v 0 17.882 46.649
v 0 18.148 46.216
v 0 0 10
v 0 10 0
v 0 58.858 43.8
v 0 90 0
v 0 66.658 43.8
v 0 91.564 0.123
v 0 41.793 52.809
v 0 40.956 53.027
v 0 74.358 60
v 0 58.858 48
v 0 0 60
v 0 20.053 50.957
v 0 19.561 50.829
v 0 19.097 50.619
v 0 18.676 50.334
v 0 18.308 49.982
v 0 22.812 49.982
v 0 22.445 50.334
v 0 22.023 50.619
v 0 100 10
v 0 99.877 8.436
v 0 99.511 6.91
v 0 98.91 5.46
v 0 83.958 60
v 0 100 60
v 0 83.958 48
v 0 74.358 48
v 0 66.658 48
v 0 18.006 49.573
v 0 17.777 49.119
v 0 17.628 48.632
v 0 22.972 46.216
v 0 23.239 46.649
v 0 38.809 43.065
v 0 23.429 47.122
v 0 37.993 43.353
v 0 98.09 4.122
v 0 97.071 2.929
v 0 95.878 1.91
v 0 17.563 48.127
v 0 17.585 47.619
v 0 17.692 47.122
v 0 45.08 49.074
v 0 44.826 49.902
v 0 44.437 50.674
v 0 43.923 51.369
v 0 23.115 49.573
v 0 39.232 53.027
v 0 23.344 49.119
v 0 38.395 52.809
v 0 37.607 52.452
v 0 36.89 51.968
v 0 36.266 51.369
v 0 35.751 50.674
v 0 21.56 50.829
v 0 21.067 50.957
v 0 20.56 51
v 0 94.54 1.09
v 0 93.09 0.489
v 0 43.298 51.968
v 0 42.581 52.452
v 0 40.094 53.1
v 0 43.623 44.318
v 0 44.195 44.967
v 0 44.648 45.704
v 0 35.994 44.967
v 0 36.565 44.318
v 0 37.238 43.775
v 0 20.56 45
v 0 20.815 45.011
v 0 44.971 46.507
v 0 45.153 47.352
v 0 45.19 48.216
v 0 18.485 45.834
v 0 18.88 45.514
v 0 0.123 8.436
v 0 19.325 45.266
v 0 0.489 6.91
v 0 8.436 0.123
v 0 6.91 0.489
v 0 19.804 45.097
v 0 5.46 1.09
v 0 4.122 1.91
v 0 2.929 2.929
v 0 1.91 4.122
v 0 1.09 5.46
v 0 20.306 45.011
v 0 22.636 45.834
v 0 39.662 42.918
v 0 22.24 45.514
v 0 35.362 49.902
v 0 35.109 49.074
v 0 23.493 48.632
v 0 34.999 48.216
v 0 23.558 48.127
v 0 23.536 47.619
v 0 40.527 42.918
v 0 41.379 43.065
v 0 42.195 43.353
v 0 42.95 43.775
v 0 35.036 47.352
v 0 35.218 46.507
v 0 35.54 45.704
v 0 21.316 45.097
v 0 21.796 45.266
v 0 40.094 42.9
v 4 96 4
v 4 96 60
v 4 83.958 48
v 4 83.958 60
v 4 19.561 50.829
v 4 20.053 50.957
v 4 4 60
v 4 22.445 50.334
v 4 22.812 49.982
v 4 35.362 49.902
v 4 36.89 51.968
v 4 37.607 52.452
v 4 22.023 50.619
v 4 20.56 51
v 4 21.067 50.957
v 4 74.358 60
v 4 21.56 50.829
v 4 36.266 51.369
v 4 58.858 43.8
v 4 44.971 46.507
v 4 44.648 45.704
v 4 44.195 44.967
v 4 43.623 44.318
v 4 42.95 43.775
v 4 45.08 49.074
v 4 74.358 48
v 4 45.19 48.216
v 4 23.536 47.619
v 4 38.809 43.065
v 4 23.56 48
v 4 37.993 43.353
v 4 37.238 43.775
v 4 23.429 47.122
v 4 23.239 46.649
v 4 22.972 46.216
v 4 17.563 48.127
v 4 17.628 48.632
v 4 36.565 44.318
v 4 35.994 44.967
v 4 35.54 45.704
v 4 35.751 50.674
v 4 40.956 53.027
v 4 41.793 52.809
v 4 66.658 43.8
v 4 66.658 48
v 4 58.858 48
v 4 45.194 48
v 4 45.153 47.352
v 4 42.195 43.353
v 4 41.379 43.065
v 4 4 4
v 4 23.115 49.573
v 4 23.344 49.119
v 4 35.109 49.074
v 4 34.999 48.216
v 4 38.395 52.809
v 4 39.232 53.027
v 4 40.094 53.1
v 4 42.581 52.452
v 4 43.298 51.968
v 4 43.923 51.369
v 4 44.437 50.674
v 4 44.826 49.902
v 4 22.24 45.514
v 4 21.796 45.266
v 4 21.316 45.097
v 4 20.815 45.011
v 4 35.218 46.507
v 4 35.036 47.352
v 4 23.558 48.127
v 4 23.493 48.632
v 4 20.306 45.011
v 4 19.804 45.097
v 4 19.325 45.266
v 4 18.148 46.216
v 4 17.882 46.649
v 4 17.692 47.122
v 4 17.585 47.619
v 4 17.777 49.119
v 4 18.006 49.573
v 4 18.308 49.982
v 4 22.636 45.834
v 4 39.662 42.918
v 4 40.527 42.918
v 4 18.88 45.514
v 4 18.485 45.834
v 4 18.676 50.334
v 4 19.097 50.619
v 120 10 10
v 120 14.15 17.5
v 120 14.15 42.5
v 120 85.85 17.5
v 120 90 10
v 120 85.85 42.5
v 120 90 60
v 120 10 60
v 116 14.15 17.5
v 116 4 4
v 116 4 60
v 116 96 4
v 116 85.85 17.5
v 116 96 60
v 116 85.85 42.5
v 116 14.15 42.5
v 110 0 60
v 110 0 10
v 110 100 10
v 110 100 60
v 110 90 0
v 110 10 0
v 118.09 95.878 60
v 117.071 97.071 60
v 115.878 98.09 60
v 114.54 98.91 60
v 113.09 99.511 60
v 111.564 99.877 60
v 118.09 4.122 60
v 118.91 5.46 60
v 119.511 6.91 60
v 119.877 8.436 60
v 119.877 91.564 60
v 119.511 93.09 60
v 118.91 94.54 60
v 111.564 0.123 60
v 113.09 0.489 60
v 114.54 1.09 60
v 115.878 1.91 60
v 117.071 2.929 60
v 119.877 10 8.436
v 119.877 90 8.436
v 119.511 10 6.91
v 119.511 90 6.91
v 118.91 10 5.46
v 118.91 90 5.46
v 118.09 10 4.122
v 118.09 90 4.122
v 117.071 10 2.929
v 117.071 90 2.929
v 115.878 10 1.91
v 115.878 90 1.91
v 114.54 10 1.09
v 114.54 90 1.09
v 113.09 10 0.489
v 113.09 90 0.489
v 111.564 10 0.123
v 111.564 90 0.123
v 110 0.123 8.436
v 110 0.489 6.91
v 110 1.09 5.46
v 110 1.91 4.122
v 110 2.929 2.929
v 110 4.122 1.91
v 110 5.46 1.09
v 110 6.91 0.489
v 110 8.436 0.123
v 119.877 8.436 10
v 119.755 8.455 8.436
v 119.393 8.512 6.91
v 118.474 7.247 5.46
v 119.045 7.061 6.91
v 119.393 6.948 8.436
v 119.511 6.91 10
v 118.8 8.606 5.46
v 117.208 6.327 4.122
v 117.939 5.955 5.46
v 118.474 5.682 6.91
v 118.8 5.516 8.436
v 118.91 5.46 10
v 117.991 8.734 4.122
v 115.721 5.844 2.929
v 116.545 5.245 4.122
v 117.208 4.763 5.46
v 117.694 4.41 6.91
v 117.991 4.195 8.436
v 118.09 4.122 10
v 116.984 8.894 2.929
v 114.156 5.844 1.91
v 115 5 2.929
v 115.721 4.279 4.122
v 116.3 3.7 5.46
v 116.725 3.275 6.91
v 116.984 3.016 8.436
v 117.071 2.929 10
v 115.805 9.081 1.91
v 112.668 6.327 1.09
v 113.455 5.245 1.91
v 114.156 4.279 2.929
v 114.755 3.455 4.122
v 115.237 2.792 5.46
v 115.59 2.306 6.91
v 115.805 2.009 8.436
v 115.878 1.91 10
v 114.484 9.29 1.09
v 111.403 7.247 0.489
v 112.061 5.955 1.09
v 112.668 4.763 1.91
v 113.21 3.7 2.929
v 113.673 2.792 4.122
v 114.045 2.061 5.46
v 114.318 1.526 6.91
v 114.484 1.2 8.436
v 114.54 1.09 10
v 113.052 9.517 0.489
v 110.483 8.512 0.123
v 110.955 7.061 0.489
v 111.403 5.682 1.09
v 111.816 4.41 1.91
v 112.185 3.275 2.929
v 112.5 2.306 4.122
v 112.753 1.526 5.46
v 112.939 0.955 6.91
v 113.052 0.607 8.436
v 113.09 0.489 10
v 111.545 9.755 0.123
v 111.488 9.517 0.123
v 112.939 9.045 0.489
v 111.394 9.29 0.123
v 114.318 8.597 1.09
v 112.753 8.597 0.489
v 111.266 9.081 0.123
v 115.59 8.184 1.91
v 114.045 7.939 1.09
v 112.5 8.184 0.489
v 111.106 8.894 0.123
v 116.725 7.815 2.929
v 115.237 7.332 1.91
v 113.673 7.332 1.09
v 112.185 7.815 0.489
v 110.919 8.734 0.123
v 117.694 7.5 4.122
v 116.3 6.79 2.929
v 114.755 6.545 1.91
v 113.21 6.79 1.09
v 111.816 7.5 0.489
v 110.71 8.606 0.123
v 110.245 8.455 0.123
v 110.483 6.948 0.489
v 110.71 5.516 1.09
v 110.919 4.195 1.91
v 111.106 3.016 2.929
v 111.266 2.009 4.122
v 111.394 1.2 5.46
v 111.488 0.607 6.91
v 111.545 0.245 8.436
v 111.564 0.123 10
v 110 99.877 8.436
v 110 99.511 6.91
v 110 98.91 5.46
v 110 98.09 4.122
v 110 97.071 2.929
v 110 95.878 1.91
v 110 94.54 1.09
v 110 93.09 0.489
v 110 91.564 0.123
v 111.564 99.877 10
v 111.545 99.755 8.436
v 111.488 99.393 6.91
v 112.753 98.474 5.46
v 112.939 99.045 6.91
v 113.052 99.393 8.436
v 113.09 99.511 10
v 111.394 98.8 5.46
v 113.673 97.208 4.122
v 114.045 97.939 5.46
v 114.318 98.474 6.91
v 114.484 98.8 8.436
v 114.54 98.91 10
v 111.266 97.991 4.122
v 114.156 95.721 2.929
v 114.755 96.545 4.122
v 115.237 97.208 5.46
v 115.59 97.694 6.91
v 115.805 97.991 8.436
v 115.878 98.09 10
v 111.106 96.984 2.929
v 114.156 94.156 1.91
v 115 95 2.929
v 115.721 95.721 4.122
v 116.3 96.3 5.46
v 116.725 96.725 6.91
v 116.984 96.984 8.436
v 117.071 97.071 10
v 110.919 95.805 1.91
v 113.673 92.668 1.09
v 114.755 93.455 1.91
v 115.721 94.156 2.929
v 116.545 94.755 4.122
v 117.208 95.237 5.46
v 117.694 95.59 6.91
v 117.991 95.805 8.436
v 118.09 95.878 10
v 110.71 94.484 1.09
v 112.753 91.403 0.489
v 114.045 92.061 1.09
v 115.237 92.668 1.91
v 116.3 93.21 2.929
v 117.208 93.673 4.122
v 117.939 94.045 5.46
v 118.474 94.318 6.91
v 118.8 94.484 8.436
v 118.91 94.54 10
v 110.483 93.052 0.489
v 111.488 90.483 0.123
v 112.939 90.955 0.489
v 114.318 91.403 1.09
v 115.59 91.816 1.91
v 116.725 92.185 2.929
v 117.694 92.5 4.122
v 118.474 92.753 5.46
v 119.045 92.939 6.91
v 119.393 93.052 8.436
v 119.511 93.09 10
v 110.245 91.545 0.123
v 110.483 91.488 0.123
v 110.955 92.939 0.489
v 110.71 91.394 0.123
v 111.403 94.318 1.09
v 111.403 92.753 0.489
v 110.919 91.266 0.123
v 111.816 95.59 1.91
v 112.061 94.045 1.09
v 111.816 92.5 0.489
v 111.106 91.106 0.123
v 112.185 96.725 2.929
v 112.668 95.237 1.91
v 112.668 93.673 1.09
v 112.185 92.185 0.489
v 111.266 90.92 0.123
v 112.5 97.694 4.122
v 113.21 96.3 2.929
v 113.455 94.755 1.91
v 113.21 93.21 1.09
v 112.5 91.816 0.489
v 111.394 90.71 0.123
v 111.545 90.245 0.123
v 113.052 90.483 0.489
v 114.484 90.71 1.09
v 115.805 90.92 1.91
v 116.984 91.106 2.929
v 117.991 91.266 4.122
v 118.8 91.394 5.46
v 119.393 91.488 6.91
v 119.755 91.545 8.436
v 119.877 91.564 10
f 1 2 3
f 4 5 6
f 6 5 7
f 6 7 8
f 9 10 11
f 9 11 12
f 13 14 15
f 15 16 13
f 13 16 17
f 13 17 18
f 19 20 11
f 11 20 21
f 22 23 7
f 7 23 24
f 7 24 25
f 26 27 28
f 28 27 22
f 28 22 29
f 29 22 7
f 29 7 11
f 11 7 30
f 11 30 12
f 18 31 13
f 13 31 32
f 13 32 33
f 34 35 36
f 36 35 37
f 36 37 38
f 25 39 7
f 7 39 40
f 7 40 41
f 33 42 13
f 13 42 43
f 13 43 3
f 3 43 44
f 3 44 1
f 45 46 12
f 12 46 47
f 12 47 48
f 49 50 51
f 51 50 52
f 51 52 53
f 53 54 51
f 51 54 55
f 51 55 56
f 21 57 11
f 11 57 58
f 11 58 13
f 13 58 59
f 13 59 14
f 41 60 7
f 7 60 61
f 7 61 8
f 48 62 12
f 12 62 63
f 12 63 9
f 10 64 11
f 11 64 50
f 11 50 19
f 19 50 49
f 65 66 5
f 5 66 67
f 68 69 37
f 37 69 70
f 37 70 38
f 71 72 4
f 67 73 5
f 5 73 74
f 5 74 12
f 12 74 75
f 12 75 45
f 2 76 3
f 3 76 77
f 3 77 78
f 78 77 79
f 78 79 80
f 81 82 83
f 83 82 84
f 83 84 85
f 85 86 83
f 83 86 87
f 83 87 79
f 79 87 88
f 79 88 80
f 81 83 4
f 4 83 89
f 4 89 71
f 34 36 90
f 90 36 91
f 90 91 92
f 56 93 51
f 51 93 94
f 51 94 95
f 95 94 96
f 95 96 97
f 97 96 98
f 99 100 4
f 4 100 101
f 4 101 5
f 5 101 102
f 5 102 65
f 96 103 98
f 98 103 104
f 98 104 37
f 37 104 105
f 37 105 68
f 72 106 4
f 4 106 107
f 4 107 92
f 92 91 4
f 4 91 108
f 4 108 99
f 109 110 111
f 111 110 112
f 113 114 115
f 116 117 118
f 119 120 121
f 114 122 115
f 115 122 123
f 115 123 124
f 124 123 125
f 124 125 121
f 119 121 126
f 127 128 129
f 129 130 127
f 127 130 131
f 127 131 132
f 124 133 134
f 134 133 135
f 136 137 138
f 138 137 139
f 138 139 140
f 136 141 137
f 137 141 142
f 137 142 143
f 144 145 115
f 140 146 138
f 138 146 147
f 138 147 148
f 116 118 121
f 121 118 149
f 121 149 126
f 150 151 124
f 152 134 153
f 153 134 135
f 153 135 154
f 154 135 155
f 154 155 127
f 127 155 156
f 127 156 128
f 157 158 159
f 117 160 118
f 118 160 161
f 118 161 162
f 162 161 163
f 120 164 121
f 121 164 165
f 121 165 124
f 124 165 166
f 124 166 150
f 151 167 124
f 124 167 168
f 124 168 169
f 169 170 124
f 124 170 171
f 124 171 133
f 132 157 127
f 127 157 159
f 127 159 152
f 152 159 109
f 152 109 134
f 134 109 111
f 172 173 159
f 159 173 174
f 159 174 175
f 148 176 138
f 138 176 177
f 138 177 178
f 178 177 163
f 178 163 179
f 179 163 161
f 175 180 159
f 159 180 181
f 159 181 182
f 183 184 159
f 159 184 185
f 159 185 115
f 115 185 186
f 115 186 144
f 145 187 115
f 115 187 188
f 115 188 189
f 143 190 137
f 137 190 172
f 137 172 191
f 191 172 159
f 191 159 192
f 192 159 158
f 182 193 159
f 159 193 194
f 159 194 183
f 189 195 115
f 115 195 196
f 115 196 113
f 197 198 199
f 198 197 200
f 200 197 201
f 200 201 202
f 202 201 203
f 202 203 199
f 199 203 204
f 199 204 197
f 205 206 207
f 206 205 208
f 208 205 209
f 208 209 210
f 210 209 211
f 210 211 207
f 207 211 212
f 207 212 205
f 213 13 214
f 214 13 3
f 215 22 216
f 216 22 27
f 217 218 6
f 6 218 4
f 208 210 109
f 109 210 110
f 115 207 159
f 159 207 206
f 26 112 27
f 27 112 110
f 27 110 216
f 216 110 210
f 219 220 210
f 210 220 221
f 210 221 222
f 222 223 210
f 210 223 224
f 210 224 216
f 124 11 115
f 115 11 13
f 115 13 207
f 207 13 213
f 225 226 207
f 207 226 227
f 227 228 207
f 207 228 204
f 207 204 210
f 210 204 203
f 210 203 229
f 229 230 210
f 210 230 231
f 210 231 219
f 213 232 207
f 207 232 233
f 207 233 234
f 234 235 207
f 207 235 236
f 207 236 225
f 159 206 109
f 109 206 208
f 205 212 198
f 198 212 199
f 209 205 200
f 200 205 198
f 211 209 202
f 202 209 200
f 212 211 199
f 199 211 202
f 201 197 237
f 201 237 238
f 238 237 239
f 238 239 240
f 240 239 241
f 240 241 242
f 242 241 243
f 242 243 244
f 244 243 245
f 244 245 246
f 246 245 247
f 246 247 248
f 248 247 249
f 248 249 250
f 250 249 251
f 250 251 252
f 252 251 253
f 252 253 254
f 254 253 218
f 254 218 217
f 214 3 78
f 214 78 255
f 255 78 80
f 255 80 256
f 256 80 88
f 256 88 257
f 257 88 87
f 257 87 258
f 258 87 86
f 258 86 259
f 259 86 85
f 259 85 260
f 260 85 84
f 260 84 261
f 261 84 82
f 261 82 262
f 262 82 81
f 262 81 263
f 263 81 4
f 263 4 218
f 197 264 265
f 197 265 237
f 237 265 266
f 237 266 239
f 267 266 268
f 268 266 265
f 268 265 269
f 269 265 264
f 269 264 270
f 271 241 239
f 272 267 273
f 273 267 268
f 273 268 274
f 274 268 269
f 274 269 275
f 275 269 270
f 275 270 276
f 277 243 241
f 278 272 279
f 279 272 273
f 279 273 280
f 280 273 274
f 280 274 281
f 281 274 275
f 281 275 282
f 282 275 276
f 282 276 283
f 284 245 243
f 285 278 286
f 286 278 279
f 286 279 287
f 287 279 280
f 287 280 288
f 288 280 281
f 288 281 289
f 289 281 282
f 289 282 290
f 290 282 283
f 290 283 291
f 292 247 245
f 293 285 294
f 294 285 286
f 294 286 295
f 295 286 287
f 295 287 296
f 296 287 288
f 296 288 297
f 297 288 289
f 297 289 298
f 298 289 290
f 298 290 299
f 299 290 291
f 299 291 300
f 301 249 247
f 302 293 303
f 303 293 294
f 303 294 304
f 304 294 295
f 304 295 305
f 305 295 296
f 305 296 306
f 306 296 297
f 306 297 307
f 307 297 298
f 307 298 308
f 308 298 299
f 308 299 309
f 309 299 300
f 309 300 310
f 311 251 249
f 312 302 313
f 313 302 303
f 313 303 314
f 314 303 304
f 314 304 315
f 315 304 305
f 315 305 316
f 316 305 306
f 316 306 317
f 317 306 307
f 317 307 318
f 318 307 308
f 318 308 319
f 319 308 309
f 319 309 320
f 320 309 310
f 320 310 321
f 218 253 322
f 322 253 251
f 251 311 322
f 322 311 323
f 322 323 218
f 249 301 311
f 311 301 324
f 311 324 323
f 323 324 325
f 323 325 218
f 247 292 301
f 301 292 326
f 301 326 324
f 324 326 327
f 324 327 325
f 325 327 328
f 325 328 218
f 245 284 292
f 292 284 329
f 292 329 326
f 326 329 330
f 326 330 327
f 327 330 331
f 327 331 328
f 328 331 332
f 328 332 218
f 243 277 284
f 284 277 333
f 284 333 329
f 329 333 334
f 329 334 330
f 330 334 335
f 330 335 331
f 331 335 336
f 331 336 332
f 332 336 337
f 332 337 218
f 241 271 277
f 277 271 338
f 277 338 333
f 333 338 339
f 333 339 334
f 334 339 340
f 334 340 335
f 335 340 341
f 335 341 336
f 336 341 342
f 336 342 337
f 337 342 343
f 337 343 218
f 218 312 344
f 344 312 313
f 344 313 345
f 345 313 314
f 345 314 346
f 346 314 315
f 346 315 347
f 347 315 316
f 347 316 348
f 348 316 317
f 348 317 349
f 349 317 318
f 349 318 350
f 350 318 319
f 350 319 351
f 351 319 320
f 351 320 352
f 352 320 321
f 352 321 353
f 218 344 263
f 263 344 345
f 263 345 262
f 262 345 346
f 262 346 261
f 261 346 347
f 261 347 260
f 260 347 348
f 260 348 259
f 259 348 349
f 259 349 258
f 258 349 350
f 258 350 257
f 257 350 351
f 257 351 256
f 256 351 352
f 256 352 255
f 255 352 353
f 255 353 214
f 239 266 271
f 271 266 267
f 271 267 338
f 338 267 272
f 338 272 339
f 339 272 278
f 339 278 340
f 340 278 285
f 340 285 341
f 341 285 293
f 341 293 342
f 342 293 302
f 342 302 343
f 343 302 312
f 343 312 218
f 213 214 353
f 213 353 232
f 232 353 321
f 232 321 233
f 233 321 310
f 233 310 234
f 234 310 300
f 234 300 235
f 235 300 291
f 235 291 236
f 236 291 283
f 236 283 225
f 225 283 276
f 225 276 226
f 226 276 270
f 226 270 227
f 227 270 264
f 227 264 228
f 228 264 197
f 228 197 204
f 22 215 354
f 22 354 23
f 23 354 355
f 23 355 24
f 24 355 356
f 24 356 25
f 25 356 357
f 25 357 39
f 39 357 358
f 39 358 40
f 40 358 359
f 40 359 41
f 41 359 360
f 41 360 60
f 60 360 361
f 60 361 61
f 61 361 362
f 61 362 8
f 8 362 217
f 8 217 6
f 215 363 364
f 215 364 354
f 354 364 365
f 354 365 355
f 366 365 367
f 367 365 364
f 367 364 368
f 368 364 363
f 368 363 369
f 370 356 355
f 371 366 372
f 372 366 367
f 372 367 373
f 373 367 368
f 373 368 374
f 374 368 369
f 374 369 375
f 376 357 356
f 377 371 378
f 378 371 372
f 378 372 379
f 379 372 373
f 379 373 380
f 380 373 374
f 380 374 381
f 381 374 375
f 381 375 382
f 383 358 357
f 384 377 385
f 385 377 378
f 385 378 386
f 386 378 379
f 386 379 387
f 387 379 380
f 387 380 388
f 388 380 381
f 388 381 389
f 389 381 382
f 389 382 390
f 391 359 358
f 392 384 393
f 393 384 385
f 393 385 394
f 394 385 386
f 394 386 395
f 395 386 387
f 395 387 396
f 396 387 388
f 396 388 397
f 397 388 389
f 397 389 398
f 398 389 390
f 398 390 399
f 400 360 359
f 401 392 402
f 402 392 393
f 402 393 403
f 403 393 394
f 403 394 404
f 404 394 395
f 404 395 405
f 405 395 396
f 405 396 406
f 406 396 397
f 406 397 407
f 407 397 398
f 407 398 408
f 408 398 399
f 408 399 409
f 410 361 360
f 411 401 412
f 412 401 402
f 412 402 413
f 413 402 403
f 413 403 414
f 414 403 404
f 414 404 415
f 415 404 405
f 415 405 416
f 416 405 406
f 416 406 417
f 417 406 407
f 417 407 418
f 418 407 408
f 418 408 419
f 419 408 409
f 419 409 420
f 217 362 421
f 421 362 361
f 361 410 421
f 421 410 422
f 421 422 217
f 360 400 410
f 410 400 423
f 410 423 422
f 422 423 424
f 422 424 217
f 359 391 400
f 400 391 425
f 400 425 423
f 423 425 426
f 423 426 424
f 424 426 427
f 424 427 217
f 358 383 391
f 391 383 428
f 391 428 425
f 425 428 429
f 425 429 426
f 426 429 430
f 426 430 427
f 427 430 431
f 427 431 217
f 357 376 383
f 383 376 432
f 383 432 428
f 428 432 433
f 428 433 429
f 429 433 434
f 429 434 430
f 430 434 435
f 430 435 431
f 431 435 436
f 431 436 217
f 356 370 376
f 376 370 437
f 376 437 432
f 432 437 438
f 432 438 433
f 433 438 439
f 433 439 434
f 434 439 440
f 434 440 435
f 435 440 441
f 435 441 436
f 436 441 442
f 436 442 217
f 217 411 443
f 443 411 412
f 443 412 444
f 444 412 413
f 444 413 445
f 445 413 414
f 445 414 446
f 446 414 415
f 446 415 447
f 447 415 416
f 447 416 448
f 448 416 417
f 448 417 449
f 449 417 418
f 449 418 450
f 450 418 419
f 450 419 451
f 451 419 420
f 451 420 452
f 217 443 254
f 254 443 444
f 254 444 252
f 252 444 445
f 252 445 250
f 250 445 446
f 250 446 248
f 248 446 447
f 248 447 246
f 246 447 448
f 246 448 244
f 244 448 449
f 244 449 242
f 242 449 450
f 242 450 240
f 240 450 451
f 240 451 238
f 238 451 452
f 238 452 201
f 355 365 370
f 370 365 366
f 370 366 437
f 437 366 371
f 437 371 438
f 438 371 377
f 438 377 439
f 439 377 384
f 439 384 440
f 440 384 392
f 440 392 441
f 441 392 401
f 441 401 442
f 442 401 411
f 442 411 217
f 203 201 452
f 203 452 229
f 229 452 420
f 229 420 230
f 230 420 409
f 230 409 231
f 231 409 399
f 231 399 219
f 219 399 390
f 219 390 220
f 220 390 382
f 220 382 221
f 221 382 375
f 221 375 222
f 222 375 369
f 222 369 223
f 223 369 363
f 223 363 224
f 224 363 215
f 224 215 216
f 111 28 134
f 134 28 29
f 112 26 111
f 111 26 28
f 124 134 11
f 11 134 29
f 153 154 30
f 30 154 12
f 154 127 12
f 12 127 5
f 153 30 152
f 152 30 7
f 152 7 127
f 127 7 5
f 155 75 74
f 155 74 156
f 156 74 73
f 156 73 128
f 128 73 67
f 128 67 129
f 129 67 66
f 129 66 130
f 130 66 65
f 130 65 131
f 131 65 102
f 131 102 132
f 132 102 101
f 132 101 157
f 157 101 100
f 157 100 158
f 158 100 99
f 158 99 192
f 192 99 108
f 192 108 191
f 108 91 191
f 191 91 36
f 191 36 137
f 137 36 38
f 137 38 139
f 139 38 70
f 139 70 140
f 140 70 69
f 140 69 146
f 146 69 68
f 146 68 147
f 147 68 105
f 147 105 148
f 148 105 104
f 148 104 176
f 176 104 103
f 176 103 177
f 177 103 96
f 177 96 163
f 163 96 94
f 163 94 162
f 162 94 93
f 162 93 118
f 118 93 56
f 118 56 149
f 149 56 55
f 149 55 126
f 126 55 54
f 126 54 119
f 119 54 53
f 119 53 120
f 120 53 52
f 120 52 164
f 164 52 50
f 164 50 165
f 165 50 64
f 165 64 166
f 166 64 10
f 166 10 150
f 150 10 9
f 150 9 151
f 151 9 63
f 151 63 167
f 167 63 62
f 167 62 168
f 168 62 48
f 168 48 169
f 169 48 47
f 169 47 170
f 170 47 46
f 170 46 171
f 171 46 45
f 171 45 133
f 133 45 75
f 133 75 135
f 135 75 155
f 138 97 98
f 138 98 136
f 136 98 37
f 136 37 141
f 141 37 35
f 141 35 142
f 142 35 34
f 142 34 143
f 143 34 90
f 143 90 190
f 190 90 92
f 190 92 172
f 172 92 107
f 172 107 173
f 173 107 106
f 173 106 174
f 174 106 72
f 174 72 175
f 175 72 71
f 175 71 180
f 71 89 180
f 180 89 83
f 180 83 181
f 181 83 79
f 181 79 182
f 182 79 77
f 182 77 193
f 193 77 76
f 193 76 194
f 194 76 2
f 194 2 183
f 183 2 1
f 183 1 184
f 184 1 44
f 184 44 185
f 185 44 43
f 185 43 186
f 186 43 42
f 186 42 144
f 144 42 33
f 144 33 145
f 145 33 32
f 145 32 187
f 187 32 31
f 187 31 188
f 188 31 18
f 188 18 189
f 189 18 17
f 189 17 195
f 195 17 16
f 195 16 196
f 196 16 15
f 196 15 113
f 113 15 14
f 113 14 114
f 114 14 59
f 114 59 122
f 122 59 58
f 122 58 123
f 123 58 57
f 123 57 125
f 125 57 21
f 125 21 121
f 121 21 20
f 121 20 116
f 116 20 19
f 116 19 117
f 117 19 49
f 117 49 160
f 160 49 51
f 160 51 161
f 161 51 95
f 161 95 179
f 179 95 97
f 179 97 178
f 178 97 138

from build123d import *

# Parameters (mm, degrees)
ESBO_O1_W                  = 120
ESBO_O1_H                  = 100
RESSALTO_EXTRUS_O1_DEPTH   = 4
ESBO_O2_W                  = 4
ESBO_O2_H                  = 4
ESBO_O2_W_2                = 112
ESBO_O2_H_2                = 92
RESSALTO_EXTRUS_O2_DEPTH   = 60
CORTE_EXTRUS_O1_DEPTH      = 26
CORTE_EXTRUS_O1_DEPTH_BACK = 23
FILETE1_R                  = 10
FILETE2_R                  = 10
FILETE3_R                  = 10
CORTE_EXTRUS_O2_DEPTH      = 37
CORTE_EXTRUS_O2_DEPTH_BACK = 36
F_3DSKETCH3_R              = 5.1
F_3DSKETCH3_R_2            = 3
CORTE_EXTRUS_O3_DEPTH      = 28
CORTE_EXTRUS_O3_DEPTH_BACK = 18


with BuildPart() as part:
    # Esboço1 → Ressalto-extrusão1 (new body)
    with BuildSketch(Plane.XY):
        with Locations((60, 50)):
            Rectangle(ESBO_O1_W, ESBO_O1_H)
    extrude(amount=RESSALTO_EXTRUS_O1_DEPTH)

    # Esboço2 → Ressalto-extrusão2 (add)
    with BuildSketch(Plane.XY):
        with Locations((2, 98)):
            Rectangle(ESBO_O2_W, ESBO_O2_H)
        with Locations((118, 98)):
            Rectangle(ESBO_O2_W, ESBO_O2_H)
        with Locations((60, 98)):
            Rectangle(ESBO_O2_W_2, ESBO_O2_H)
        with Locations((118, 50)):
            Rectangle(ESBO_O2_W, ESBO_O2_H_2)
        with Locations((118, 2)):
            Rectangle(ESBO_O2_W, ESBO_O2_H)
        with Locations((60, 2)):
            Rectangle(ESBO_O2_W_2, ESBO_O2_H)
        with Locations((2, 2)):
            Rectangle(ESBO_O2_W, ESBO_O2_H)
        with Locations((2, 50)):
            Rectangle(ESBO_O2_W, ESBO_O2_H_2)
    extrude(amount=RESSALTO_EXTRUS_O2_DEPTH)

    # 3DSketch1 → Corte-extrusão1 (cut, two sides)
    with BuildSketch(Plane(origin=(120, 14.15, 17.5), x_dir=(0, 0.9442477948596217, 0.32923563279624185), z_dir=(1, 0, 0))) as corte_extrus_o1_sk:
        Polygon((0, 0), (8.23089082, 23.606194871), (75.933457711, 0), (67.702566891, -23.606194871), align=None)
    extrude(amount=CORTE_EXTRUS_O1_DEPTH, mode=Mode.SUBTRACT)
    extrude(corte_extrus_o1_sk.sketch, amount=-CORTE_EXTRUS_O1_DEPTH_BACK, mode=Mode.SUBTRACT)

    # Filete1
    filete1_edges = [part.edges().sort_by_distance(p)[0] for p in [
        (120, 50, 0),
    ]]
    fillet(filete1_edges, radius=FILETE1_R)

    # Filete2
    filete2_edges = [part.edges().sort_by_distance(p)[0] for p in [
        (55, 0, 0),
        (120, 0, 35),
        (117.071067812, 0, 2.928932188),
    ]]
    fillet(filete2_edges, radius=FILETE2_R)

    # Filete3
    filete3_edges = [part.edges().sort_by_distance(p)[0] for p in [
        (120, 100, 35),
        (55, 100, 0),
        (117.071067812, 100, 2.928932188),
    ]]
    fillet(filete3_edges, radius=FILETE3_R)

    # 3DSketch2 → Corte-extrusão2 (cut, two sides)
    with BuildSketch(Plane(origin=(0, 83.957923226, 60), x_dir=(0, -0.8401982536854657, -0.5422793509842448), z_dir=(1, 0, 0))) as corte_extrus_o2_sk:
        Polygon((0, 0), (6.507352212, 10.082379044), (14.573255447, 4.876497275), (8.065903235, -5.205881769), align=None)
        Polygon((21.042782001, 0.700946272), (23.320355275, 4.229778938), (29.873901653, 0), (27.596328379, -3.528832665), align=None)
    extrude(amount=CORTE_EXTRUS_O2_DEPTH, mode=Mode.SUBTRACT)
    extrude(corte_extrus_o2_sk.sketch, amount=-CORTE_EXTRUS_O2_DEPTH_BACK, mode=Mode.SUBTRACT)

    # 3DSketch3 → Corte-extrusão3 (cut, two sides)
    with BuildSketch(Plane(origin=(0, 40.094193259, 48), x_dir=(0, -1, 0), z_dir=(-1, 0, 0))) as corte_extrus_o3_sk:
        with Locations(Location((0, 0, 0), (0, 0, 180))):
            Circle(F_3DSKETCH3_R)
        with Locations(Location((19.533873925, 0, 0), (0, 0, 180))):
            Circle(F_3DSKETCH3_R_2)
    extrude(amount=CORTE_EXTRUS_O3_DEPTH, mode=Mode.SUBTRACT)
    extrude(corte_extrus_o3_sk.sketch, amount=-CORTE_EXTRUS_O3_DEPTH_BACK, mode=Mode.SUBTRACT)


solid = part.part
